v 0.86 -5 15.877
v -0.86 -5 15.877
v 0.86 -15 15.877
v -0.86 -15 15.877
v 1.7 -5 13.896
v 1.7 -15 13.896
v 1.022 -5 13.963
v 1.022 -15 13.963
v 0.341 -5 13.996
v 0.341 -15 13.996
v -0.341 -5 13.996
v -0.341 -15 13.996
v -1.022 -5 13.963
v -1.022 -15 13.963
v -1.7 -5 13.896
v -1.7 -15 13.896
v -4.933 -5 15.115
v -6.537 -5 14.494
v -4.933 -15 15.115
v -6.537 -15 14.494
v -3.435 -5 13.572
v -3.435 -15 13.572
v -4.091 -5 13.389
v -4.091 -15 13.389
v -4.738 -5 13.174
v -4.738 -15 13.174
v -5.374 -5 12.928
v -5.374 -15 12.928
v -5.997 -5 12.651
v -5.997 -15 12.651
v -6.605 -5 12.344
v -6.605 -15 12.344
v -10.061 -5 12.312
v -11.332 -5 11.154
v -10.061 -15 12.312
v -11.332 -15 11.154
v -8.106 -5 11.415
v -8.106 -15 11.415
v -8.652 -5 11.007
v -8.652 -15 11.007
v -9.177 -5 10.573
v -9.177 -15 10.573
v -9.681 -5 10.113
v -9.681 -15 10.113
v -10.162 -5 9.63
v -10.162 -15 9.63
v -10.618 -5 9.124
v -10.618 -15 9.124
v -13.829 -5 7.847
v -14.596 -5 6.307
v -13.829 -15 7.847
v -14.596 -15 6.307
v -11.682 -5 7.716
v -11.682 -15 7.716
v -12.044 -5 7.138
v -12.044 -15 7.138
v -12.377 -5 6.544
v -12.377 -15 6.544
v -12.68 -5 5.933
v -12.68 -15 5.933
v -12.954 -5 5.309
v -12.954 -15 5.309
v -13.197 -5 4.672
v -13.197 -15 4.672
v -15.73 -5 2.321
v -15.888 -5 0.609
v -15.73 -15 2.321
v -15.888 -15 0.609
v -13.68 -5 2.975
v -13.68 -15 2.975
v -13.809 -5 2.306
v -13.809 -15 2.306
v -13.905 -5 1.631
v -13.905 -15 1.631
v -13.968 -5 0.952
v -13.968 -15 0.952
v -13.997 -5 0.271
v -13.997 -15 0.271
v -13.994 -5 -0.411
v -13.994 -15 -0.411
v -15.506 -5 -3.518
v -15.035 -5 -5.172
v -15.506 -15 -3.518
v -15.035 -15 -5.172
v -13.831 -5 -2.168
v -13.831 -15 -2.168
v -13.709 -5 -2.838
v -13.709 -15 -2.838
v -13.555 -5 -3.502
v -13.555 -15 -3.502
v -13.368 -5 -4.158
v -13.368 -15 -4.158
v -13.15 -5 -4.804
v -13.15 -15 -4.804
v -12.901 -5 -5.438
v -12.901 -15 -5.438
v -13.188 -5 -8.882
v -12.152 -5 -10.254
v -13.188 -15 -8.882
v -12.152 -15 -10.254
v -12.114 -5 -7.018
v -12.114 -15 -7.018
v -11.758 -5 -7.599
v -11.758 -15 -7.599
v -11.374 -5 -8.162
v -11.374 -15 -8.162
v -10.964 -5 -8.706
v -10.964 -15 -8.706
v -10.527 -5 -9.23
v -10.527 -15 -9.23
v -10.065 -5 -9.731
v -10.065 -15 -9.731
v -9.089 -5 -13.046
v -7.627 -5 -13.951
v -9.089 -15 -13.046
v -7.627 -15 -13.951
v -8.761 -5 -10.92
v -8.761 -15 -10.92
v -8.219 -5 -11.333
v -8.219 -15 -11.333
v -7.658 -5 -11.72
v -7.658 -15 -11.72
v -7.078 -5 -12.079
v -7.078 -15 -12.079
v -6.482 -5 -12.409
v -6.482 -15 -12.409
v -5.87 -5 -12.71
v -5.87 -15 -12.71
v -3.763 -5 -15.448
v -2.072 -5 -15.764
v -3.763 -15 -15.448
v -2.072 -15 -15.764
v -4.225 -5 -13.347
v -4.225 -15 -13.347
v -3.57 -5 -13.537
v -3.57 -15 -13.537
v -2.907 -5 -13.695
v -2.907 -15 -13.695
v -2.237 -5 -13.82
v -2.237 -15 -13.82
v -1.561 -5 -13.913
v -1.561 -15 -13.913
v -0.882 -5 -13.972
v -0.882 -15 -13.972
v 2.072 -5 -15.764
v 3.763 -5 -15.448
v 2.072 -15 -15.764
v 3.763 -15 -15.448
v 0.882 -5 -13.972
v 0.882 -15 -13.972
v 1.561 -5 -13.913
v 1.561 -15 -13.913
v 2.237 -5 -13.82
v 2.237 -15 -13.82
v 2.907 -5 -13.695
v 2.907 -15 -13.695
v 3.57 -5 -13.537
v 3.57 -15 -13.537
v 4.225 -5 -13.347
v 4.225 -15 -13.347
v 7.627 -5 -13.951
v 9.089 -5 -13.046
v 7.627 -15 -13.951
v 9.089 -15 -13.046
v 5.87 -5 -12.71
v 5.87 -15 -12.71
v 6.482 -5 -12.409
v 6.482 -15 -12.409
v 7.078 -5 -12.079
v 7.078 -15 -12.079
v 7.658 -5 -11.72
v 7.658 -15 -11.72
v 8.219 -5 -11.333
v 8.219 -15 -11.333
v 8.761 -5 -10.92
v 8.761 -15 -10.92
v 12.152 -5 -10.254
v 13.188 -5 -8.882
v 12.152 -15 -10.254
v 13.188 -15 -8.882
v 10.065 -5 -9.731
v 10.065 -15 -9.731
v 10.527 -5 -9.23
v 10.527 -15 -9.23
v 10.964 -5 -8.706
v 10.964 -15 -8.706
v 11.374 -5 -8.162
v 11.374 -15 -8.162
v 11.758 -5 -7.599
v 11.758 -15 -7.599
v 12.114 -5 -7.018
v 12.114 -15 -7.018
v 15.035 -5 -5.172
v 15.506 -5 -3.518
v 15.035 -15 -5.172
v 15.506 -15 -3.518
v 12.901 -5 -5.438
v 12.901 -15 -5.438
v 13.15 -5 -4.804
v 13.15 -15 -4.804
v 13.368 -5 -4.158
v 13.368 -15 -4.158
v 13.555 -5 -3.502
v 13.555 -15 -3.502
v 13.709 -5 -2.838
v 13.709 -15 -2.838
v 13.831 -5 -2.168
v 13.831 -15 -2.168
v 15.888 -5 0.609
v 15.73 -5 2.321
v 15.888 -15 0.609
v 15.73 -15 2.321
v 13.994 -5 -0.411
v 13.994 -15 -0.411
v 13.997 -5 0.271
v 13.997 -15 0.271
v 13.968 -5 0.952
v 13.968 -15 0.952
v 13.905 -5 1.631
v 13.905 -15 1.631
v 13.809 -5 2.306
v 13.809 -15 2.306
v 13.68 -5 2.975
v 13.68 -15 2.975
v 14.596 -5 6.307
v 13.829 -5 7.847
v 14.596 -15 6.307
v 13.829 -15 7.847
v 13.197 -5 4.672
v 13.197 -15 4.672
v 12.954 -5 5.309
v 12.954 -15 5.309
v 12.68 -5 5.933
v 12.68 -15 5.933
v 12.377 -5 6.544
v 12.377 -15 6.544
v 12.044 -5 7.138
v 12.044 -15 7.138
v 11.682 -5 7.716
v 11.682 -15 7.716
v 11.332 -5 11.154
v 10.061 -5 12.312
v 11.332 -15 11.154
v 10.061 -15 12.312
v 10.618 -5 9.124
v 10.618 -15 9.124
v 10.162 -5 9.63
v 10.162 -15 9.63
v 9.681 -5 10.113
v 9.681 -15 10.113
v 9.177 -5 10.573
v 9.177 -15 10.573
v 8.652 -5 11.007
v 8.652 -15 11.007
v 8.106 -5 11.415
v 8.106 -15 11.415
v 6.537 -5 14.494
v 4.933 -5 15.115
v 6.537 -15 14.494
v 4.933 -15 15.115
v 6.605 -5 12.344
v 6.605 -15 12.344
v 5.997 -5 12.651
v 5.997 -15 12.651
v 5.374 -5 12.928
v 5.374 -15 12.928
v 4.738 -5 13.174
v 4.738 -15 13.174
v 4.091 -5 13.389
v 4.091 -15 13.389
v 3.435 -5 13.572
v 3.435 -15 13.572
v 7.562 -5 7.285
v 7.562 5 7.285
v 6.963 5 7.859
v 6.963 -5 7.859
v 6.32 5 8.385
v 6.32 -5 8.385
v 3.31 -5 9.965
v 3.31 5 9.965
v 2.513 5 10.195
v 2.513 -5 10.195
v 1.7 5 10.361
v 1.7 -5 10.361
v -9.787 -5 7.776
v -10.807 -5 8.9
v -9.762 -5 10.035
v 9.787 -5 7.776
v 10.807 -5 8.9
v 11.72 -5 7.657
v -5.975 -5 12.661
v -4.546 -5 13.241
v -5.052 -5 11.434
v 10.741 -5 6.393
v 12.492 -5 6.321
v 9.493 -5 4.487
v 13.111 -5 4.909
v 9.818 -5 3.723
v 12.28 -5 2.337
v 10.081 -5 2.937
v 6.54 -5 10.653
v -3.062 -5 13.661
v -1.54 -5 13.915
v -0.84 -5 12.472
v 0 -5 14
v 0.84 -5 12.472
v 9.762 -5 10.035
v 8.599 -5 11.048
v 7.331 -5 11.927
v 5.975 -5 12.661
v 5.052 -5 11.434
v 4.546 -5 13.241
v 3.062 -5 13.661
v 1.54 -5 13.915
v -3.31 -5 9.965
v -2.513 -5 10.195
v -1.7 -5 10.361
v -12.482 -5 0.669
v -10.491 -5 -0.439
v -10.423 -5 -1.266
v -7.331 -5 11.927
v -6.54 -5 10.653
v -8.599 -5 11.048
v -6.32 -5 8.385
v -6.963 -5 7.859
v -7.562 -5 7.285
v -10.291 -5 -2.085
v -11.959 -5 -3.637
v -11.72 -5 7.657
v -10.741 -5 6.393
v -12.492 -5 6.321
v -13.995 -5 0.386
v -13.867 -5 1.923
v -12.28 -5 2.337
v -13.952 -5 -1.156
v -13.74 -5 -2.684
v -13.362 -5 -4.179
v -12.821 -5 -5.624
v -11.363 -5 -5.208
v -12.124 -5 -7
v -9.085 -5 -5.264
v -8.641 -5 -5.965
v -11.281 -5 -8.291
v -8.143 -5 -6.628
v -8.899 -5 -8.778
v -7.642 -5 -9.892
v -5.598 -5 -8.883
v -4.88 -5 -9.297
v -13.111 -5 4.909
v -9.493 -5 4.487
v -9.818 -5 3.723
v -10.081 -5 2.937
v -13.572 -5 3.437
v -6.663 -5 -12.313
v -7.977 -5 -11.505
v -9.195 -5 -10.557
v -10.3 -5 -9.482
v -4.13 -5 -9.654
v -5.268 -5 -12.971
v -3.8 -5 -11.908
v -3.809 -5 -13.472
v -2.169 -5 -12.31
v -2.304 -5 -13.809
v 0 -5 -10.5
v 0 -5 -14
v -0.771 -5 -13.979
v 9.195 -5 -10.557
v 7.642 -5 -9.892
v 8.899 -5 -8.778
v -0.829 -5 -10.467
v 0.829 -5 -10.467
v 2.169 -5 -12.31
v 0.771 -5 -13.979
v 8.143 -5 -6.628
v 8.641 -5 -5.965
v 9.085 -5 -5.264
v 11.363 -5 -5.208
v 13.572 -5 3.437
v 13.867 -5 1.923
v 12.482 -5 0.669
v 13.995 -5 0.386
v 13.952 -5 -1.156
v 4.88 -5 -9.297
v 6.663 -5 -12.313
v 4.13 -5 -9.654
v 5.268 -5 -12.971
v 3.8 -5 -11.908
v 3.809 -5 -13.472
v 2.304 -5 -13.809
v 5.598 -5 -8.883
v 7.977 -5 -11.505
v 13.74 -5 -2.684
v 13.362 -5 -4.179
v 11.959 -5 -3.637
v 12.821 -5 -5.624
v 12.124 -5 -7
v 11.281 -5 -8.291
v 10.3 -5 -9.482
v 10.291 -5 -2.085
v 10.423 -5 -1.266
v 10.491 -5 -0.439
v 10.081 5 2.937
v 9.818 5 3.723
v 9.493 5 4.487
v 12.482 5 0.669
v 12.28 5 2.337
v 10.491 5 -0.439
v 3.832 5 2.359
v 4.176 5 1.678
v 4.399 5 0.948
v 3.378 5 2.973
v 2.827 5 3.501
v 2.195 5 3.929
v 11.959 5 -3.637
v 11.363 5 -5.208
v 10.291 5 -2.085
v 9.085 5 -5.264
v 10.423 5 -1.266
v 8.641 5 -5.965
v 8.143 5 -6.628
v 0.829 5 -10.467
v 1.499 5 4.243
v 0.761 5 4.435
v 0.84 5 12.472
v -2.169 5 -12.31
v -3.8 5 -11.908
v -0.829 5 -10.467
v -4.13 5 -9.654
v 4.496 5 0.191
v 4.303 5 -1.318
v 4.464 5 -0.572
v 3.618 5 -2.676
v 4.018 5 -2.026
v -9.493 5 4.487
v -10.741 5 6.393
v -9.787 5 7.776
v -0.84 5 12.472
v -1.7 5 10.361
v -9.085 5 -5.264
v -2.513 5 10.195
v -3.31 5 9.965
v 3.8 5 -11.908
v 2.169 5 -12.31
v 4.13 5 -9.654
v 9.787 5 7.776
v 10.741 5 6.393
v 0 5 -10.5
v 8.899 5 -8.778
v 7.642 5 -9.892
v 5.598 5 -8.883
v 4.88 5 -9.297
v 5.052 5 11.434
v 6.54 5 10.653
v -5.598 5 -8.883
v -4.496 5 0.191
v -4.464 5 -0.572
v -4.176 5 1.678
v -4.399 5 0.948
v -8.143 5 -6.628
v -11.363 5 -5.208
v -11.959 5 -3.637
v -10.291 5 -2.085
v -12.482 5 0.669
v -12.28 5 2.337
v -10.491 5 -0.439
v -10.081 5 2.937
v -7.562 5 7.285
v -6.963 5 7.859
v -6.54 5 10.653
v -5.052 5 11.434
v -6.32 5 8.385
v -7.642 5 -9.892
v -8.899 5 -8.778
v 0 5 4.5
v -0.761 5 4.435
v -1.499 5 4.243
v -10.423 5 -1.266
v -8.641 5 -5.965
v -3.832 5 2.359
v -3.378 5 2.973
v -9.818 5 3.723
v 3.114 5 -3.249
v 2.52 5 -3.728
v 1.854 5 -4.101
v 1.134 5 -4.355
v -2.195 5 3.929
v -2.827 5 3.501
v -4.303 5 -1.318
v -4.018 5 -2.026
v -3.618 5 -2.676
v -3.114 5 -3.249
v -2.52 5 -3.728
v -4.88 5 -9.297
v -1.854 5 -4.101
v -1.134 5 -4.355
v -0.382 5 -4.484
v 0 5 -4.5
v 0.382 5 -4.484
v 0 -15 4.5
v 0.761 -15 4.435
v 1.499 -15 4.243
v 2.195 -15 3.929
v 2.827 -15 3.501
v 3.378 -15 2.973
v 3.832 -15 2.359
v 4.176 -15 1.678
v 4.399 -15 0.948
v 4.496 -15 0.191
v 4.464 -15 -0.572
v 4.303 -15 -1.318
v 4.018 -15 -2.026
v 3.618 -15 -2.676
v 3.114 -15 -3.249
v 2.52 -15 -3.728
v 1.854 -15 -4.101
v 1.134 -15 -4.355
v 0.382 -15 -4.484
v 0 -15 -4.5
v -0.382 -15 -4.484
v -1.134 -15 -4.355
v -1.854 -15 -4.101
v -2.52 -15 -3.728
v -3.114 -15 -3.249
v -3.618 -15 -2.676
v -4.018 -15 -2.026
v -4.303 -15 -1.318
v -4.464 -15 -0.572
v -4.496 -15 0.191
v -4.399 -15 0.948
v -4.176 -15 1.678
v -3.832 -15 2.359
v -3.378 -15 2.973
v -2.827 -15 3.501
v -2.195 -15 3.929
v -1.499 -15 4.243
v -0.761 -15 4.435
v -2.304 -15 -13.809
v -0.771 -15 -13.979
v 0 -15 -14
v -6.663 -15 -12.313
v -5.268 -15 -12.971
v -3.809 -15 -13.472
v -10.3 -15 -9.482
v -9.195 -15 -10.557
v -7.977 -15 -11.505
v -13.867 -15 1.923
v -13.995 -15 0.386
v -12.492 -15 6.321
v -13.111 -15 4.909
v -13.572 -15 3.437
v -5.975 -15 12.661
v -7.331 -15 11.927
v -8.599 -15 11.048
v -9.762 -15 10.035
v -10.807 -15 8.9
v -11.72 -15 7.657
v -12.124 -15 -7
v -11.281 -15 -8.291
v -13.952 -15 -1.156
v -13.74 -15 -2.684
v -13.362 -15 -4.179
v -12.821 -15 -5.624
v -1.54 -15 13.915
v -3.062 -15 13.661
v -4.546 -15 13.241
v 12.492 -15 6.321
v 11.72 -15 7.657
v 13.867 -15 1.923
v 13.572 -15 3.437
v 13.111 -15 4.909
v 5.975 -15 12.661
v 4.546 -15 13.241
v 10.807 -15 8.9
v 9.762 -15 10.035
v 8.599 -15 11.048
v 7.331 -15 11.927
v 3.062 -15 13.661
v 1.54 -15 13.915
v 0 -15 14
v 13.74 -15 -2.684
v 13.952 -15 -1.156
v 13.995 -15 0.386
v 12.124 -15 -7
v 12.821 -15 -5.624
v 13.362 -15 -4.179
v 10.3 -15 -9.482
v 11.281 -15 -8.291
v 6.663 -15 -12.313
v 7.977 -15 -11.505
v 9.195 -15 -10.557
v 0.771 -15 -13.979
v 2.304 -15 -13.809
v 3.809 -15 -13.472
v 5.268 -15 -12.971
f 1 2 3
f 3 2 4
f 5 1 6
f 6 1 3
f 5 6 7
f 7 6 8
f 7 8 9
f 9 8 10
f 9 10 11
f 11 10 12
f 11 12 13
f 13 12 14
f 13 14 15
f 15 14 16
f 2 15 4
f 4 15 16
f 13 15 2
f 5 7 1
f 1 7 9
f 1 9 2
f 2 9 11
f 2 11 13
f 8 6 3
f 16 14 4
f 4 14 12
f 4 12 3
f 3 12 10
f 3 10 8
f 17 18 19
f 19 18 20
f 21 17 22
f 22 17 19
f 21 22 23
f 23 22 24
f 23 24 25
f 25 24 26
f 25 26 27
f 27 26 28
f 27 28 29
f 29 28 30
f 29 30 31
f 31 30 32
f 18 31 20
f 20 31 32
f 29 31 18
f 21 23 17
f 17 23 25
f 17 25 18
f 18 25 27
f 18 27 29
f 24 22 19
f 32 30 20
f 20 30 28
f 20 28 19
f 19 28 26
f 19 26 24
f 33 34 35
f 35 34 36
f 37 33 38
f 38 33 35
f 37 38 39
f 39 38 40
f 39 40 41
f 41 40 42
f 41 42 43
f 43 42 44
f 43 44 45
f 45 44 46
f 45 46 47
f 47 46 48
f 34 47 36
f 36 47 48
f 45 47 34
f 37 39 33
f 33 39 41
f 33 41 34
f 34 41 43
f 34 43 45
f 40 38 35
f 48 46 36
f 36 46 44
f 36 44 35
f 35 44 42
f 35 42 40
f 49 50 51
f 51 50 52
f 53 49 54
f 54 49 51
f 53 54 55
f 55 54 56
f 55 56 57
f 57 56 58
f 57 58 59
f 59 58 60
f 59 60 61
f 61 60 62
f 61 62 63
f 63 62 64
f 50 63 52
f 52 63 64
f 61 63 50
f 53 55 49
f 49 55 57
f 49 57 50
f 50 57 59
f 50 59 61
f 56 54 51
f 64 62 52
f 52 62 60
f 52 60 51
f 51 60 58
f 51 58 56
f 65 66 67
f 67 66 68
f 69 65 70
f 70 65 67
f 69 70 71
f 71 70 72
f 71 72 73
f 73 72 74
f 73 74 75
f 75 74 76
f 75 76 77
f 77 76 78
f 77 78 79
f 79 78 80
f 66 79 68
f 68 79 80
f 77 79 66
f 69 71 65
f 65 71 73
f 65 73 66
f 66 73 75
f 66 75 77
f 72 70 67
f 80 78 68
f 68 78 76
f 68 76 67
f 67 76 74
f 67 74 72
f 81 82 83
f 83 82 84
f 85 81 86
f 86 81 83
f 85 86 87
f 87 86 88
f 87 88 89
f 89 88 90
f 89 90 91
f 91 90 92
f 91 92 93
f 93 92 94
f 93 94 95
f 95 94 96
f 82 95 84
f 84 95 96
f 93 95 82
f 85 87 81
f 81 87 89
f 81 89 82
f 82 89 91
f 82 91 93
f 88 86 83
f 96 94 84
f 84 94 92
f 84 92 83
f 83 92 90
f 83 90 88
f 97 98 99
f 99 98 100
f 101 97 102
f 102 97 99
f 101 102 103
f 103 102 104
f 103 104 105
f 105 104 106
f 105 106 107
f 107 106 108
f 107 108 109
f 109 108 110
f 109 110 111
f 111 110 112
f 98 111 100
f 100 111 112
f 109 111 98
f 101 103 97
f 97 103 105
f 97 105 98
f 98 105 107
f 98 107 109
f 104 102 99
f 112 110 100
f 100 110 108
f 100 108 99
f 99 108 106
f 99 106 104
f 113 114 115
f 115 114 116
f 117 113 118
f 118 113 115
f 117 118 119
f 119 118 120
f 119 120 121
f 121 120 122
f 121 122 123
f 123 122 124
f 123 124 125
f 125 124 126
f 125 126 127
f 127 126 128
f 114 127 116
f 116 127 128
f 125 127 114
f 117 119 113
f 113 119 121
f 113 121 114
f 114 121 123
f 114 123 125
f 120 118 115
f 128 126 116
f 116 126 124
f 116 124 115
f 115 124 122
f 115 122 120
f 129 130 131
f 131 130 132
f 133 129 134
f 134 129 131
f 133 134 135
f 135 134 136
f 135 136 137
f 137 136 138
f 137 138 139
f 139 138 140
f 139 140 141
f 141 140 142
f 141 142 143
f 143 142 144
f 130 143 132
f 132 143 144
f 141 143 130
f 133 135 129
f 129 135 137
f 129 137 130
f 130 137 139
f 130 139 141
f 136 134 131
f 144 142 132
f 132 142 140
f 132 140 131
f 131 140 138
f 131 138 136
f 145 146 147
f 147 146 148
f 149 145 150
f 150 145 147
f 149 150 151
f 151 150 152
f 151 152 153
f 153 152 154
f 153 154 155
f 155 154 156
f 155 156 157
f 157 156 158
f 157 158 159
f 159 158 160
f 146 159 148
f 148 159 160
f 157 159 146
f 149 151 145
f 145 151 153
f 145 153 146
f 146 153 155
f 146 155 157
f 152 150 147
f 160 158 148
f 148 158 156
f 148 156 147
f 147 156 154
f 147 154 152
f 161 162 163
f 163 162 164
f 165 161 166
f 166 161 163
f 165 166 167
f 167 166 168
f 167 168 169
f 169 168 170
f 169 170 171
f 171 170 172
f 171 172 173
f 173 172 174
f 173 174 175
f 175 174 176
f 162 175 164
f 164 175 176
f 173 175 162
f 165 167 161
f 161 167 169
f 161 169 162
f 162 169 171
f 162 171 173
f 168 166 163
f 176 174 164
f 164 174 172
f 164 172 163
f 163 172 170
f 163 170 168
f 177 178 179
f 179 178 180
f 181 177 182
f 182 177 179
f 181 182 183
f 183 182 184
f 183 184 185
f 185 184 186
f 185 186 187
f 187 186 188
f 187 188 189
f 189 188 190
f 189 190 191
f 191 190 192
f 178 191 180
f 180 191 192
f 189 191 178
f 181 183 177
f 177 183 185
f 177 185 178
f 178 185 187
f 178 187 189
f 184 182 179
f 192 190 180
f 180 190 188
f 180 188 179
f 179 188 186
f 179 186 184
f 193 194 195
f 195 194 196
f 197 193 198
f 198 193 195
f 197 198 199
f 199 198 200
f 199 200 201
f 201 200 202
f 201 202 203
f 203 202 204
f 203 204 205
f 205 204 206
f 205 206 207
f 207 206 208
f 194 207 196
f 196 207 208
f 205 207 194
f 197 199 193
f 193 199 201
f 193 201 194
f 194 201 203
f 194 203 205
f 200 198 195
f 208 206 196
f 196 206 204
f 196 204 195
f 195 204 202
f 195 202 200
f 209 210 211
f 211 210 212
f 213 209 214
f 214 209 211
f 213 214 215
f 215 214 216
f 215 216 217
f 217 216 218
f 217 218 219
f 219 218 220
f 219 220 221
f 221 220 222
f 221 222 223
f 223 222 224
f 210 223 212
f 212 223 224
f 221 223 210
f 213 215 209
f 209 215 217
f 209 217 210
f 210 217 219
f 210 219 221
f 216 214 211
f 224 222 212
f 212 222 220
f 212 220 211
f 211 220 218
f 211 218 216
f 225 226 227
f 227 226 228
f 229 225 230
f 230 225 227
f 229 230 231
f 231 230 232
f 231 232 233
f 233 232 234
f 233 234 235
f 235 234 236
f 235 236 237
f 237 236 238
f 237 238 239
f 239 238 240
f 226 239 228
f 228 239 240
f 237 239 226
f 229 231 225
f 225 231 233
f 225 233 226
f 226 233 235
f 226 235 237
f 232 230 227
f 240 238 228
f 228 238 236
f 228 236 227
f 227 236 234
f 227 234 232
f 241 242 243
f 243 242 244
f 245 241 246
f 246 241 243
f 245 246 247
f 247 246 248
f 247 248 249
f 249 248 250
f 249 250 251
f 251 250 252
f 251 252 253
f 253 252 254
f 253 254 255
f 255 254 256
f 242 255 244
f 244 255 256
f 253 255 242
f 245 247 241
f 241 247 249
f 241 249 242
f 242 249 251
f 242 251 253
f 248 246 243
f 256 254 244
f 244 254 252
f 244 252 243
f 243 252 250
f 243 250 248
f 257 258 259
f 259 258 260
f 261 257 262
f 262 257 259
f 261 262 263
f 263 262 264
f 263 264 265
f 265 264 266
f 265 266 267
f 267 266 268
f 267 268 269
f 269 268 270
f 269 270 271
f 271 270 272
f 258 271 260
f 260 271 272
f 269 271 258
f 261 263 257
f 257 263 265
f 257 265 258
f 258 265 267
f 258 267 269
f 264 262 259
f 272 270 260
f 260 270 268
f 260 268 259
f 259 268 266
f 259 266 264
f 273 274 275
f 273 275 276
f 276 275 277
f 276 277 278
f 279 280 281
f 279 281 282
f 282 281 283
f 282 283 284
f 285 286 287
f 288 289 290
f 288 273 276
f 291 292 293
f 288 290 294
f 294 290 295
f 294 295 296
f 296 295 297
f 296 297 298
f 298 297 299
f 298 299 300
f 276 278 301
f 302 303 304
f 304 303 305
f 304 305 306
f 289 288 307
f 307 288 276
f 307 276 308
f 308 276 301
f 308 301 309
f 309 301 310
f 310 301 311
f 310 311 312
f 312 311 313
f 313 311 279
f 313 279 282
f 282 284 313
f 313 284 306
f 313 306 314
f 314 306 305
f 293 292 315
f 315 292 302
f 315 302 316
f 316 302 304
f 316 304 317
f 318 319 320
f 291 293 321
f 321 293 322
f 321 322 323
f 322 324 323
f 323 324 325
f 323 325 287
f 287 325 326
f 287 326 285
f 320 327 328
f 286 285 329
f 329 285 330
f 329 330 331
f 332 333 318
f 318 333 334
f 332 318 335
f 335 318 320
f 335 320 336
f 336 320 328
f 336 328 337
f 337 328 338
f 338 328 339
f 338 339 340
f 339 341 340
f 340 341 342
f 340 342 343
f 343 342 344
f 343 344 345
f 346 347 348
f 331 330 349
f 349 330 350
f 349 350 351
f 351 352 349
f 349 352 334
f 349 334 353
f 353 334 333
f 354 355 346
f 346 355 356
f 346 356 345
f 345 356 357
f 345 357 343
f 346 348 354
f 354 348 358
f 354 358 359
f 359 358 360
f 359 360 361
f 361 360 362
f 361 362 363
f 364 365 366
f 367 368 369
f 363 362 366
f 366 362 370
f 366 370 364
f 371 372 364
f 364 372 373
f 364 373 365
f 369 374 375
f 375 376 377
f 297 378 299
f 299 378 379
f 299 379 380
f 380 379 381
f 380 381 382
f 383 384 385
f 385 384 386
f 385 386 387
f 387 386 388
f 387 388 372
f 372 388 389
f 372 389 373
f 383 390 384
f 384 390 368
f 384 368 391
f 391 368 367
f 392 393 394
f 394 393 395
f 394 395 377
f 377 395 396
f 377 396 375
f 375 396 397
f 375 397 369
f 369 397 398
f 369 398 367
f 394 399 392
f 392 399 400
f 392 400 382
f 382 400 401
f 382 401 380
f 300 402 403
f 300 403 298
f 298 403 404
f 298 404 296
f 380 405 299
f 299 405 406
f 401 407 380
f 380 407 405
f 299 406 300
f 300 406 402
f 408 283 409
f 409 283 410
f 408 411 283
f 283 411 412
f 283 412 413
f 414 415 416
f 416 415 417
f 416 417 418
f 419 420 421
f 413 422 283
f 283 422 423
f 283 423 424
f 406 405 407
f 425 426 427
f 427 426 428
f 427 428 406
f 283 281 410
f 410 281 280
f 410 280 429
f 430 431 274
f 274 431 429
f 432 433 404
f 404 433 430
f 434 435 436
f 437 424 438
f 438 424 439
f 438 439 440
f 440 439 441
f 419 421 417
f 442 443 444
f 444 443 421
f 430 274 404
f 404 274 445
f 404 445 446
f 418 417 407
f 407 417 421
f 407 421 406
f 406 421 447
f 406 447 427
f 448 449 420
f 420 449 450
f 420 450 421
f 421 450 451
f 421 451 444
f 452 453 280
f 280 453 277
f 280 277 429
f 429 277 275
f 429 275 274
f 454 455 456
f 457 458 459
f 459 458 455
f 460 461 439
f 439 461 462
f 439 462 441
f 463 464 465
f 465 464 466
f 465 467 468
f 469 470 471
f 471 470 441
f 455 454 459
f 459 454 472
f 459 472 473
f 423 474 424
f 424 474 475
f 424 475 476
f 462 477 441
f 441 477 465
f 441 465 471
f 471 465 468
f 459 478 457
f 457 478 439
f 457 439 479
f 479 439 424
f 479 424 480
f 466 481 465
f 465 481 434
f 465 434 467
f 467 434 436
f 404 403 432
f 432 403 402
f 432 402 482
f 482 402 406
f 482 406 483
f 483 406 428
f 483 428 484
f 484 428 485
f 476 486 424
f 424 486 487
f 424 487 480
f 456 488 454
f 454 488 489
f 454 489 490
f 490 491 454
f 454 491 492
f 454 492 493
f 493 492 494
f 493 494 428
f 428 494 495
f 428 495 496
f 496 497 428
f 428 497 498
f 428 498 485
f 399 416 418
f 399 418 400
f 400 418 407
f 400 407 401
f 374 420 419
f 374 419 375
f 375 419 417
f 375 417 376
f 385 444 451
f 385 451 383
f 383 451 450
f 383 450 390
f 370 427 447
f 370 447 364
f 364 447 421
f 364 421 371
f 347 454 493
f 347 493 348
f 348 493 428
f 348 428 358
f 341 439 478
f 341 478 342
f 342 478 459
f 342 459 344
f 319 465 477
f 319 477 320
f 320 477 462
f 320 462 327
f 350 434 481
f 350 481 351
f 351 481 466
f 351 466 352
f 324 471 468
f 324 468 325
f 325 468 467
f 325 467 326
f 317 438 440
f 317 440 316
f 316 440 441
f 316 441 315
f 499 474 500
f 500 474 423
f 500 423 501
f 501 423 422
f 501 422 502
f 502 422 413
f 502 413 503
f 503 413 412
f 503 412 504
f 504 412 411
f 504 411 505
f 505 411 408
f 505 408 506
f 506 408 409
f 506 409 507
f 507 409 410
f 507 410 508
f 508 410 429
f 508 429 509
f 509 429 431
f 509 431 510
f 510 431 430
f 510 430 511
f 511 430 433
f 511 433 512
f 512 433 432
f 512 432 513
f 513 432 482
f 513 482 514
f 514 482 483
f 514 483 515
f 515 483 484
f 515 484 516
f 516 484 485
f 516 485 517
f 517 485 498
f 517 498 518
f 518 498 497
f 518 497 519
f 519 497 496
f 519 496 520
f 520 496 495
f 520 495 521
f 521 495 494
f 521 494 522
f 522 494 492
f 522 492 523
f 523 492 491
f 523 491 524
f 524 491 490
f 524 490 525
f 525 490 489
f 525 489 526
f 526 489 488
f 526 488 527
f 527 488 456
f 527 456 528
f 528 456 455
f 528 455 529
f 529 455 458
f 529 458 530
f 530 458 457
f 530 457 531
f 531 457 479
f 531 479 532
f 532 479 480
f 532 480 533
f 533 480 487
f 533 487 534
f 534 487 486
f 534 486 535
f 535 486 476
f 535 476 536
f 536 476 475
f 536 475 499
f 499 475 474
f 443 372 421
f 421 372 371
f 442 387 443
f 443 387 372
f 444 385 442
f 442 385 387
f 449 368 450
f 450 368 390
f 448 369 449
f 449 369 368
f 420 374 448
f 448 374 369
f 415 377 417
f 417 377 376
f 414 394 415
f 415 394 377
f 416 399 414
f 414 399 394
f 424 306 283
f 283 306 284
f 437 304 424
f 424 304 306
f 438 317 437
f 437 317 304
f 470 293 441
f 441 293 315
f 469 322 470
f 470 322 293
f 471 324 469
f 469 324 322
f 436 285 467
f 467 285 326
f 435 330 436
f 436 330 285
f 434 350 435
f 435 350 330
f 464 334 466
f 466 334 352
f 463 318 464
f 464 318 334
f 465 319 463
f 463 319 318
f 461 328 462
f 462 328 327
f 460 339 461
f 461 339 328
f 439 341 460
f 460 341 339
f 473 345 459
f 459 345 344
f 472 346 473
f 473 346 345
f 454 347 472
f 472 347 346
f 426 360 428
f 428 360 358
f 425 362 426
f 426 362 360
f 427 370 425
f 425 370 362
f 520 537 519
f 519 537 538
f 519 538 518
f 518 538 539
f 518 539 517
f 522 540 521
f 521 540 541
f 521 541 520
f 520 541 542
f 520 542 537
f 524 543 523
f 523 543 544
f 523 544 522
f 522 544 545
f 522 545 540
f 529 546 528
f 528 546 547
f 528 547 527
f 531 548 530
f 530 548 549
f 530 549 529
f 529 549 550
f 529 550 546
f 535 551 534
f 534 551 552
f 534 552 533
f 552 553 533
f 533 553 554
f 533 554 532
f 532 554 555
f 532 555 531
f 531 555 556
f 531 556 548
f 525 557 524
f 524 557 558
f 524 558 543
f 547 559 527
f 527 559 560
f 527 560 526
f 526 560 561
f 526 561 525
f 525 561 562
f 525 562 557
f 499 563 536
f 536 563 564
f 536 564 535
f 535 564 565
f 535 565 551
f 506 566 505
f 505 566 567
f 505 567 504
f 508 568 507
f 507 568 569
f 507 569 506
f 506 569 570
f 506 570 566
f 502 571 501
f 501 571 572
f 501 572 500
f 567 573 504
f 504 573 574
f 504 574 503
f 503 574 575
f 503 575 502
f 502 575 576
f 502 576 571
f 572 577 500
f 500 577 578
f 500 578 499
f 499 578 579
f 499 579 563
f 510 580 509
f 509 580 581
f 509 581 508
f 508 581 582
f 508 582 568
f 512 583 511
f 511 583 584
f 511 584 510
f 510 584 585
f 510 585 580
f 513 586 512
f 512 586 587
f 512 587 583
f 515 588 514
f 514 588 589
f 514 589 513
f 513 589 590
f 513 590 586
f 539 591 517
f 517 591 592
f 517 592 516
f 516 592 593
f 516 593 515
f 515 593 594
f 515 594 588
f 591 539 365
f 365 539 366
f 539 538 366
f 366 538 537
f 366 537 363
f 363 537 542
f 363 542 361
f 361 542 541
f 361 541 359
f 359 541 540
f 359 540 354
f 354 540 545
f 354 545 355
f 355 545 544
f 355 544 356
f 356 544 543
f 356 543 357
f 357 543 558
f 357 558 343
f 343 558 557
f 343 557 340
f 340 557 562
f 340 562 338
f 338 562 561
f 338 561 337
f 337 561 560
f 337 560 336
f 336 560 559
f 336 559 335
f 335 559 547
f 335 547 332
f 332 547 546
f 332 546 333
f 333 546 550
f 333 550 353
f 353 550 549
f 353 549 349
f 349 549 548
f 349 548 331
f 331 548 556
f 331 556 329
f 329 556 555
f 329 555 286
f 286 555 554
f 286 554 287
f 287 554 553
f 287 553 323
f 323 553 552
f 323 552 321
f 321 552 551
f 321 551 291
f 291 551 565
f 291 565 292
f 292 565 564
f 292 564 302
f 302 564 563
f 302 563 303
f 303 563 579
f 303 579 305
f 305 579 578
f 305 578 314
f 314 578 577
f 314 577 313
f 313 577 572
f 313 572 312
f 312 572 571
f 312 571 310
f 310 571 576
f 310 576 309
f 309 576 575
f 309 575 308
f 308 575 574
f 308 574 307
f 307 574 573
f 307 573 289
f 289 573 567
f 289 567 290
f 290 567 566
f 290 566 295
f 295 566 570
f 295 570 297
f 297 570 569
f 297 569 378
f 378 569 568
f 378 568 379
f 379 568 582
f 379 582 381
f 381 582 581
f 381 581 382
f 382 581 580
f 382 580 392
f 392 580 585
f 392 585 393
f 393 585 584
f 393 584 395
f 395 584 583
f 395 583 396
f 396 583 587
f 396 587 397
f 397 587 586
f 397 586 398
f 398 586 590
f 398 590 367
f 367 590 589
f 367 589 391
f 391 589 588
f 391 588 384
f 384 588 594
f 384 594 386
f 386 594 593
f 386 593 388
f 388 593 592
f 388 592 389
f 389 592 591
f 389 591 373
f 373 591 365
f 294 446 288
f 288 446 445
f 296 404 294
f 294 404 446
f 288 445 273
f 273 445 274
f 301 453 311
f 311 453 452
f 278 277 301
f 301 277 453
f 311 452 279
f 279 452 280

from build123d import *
from build123d.topology import SkipClean

# Parameters (mm, degrees)
SKETCH1_R            = 4.5
BOSS_EXTRUDE1_DEPTH  = 5
SKETCH12_R           = 10.5
SKETCH12_R_2         = 4.5
BOSS_EXTRUDE6_DEPTH  = 5
BOSS_EXTRUDE9_DEPTH  = 5
CIRPATTERN2_COUNT    = 13
BOSS_EXTRUDE10_START = 5
SKETCH17_R           = 10.5
SKETCH17_R_2         = 4.5
BOSS_EXTRUDE10_DEPTH = 5
BOSS_EXTRUDE11_START = 10
SKETCH20_R           = 14
SKETCH20_R_2         = 4.5
BOSS_EXTRUDE11_DEPTH = 10
BOSS_EXTRUDE12_DEPTH = 10
CIRPATTERN3_COUNT    = 17
BOSS_EXTRUDE13_DEPTH = 5
SKETCH27_R           = 4.5
CUT_EXTRUDE3_DEPTH   = 10


with BuildPart() as part:
    # Sketch1 → Boss-Extrude1 (new body)
    with BuildSketch(Plane(origin=(0, 0, 0), x_dir=(1, 0, 0), z_dir=(0, 1, 0))):
        with Locations(Location((0, 0, 0), (0, 0, 270))):
            Circle(SKETCH1_R)
    extrude(amount=BOSS_EXTRUDE1_DEPTH)

    # Sketch27 → Cut-Extrude3 (cut)
    with BuildSketch(Plane.XZ):
        with Locations(Location((0, 0, 0), (0, 0, 270))):
            Circle(SKETCH27_R)
    extrude(amount=-CUT_EXTRUDE3_DEPTH, mode=Mode.SUBTRACT)


with BuildPart() as body_2:
    # Sketch12 → Boss-Extrude6 (new body)
    with BuildSketch(Plane(origin=(0, 5, 0), x_dir=(-1, 0, 0), z_dir=(0, -1, 0))):
        with Locations(Location((0, 0, 0), (0, 0, 90))):
            Circle(SKETCH12_R)
        with Locations(Location((0, 0, 0), (0, 0, 270))):
            Circle(SKETCH12_R_2, mode=Mode.SUBTRACT)
    extrude(amount=BOSS_EXTRUDE6_DEPTH)



with BuildPart() as body_3:
    # Sketch13 → Boss-Extrude9 (new body)
    with BuildSketch(Plane.XZ):
        with BuildLine():
            Line((1.7, 10.361467078), (0.84, 12.471744064))
            Line((0.84, 12.471744064), (-0.84, 12.471744064))
            Line((-0.84, 12.471744064), (-1.7, 10.361467078))
            ThreePointArc((-1.7, 10.361467078), (0, 10.5), (1.7, 10.361467078))
        make_face()
    extrude(amount=-BOSS_EXTRUDE9_DEPTH)


with BuildPart() as cirpattern2_1:
    # CirPattern2: pattern copy
    add(body_3.part.rotate(Axis((0, 0, 0), (0, 1, 0)), 1 * 360 / CIRPATTERN2_COUNT))


with BuildPart() as cirpattern2_2:
    # CirPattern2: pattern copy
    add(body_3.part.rotate(Axis((0, 0, 0), (0, 1, 0)), 2 * 360 / CIRPATTERN2_COUNT))


with BuildPart() as cirpattern2_3:
    # CirPattern2: pattern copy
    add(body_3.part.rotate(Axis((0, 0, 0), (0, 1, 0)), 3 * 360 / CIRPATTERN2_COUNT))


with BuildPart() as cirpattern2_4:
    # CirPattern2: pattern copy
    add(body_3.part.rotate(Axis((0, 0, 0), (0, 1, 0)), 4 * 360 / CIRPATTERN2_COUNT))


with BuildPart() as cirpattern2_5:
    # CirPattern2: pattern copy
    add(body_3.part.rotate(Axis((0, 0, 0), (0, 1, 0)), 5 * 360 / CIRPATTERN2_COUNT))


with BuildPart() as cirpattern2_6:
    # CirPattern2: pattern copy
    add(body_3.part.rotate(Axis((0, 0, 0), (0, 1, 0)), 6 * 360 / CIRPATTERN2_COUNT))


with BuildPart() as cirpattern2_7:
    # CirPattern2: pattern copy
    add(body_3.part.rotate(Axis((0, 0, 0), (0, 1, 0)), 7 * 360 / CIRPATTERN2_COUNT))


with BuildPart() as cirpattern2_8:
    # CirPattern2: pattern copy
    add(body_3.part.rotate(Axis((0, 0, 0), (0, 1, 0)), 8 * 360 / CIRPATTERN2_COUNT))


with BuildPart() as cirpattern2_9:
    # CirPattern2: pattern copy
    add(body_3.part.rotate(Axis((0, 0, 0), (0, 1, 0)), 9 * 360 / CIRPATTERN2_COUNT))


with BuildPart() as cirpattern2_10:
    # CirPattern2: pattern copy
    add(body_3.part.rotate(Axis((0, 0, 0), (0, 1, 0)), 10 * 360 / CIRPATTERN2_COUNT))


with BuildPart() as cirpattern2_11:
    # CirPattern2: pattern copy
    add(body_3.part.rotate(Axis((0, 0, 0), (0, 1, 0)), 11 * 360 / CIRPATTERN2_COUNT))


with BuildPart() as cirpattern2_12:
    # CirPattern2: pattern copy
    add(body_3.part.rotate(Axis((0, 0, 0), (0, 1, 0)), 12 * 360 / CIRPATTERN2_COUNT))


with BuildPart() as body_2_1:
    with SkipClean():  # the faces are left unmerged after this step: merging them gives an invalid solid
        add(body_2.part)

        add(body_3.part)  # Boss-Extrude10 merges body 3

        add(cirpattern2_4.part)  # Boss-Extrude10 merges CirPattern2_4

        add(cirpattern2_5.part)  # Boss-Extrude10 merges CirPattern2_5

        add(cirpattern2_6.part)  # Boss-Extrude10 merges CirPattern2_6

        add(cirpattern2_7.part)  # Boss-Extrude10 merges CirPattern2_7

        add(cirpattern2_8.part)  # Boss-Extrude10 merges CirPattern2_8

        add(cirpattern2_9.part)  # Boss-Extrude10 merges CirPattern2_9

        add(cirpattern2_10.part)  # Boss-Extrude10 merges CirPattern2_10

        add(cirpattern2_11.part)  # Boss-Extrude10 merges CirPattern2_11

        add(cirpattern2_12.part)  # Boss-Extrude10 merges CirPattern2_12
        # Sketch17 → Boss-Extrude10 (add)
        # profile 1 of 11: a face of its own
        with BuildSketch(Plane.XZ.offset(BOSS_EXTRUDE10_START)):
            Circle(SKETCH17_R)
            with Locations(Location((0, 0, 0), (0, 0, 90))):
                Circle(SKETCH17_R_2, mode=Mode.SUBTRACT)
        # profile 2 of 11: a face of its own
        with BuildSketch(Plane.XZ.offset(BOSS_EXTRUDE10_START)):
            with BuildLine():
                ThreePointArc((-1.7, 10.361467078), (0, 10.5), (1.7, 10.361467078))
                Line((1.7, 10.361467078), (0.84, 12.471744064))
                Line((0.84, 12.471744064), (-0.84, 12.471744064))
                Line((-0.84, 12.471744064), (-1.7, 10.361467078))
            make_face()
        # profile 3 of 11: a face of its own
        with BuildSketch(Plane.XZ.offset(BOSS_EXTRUDE10_START)):
            with BuildLine():
                ThreePointArc((-6.320489091, 8.384594066), (-4.879593306, 9.297288269), (-3.309938604, 9.964652851))
                Line((-3.309938604, 9.964652851), (-5.052125401, 11.433548396))
                Line((-5.052125401, 11.433548396), (-6.539691524, 10.652813467))
                Line((-6.539691524, 10.652813467), (-6.320489091, 8.384594066))
            make_face()
        # profile 4 of 11: a face of its own
        with BuildSketch(Plane.XZ.offset(BOSS_EXTRUDE10_START)):
            with BuildLine():
                Line((-10.741218532, 6.393451686), (-9.493030301, 4.486911599))
                ThreePointArc((-9.493030301, 4.486911599), (-8.641330592, 5.964679841), (-7.561610162, 7.285056743))
                Line((-7.561610162, 7.285056743), (-9.786869757, 7.77606458))
                Line((-9.786869757, 7.77606458), (-10.741218532, 6.393451686))
            make_face()
        # profile 5 of 11: a face of its own
        with BuildSketch(Plane.XZ.offset(BOSS_EXTRUDE10_START)):
            with BuildLine():
                Line((-12.482061819, 0.669427172), (-10.490832673, -0.438668242))
                ThreePointArc((-10.490832673, -0.438668242), (-10.423443178, 1.265635143), (-10.08100796, 2.93654193))
                Line((-10.08100796, 2.93654193), (-12.279560196, 2.337178081))
                Line((-12.279560196, 2.337178081), (-12.482061819, 0.669427172))
            make_face()
        # profile 6 of 11: a face of its own
        with BuildSketch(Plane.XZ.offset(BOSS_EXTRUDE10_START)):
            with BuildLine():
                Line((-11.363415169, -5.207955039), (-9.085311708, -5.263754475))
                ThreePointArc((-9.085311708, -5.263754475), (-9.817670548, -3.723351314), (-10.290968324, -2.08469925))
                Line((-10.290968324, -2.08469925), (-11.95915138, -3.637127751))
                Line((-11.95915138, -3.637127751), (-11.363415169, -5.207955039))
            make_face()
        # profile 7 of 11: a face of its own
        with BuildSketch(Plane.XZ.offset(BOSS_EXTRUDE10_START)):
            with BuildLine():
                Line((-7.641547048, -9.892257513), (-5.59845532, -8.882977993))
                ThreePointArc((-5.59845532, -8.882977993), (-6.962787912, -7.859362856), (-8.143391864, -6.628360955))
                Line((-8.143391864, -6.628360955), (-8.899045105, -8.778211447))
                Line((-8.899045105, -8.778211447), (-7.641547048, -9.892257513))
            make_face()
        # profile 8 of 11: a face of its own
        with BuildSketch(Plane.XZ.offset(BOSS_EXTRUDE10_START)):
            with BuildLine():
                Line((-2.169092589, -12.310363006), (-0.829060287, -10.467218305))
                ThreePointArc((-0.829060287, -10.467218305), (-2.512814475, -10.194889083), (-4.130262466, -9.653545046))
                Line((-4.130262466, -9.653545046), (-3.800274842, -11.90831269))
                Line((-3.800274842, -11.90831269), (-2.169092589, -12.310363006))
            make_face()
        # profile 9 of 11: a face of its own
        with BuildSketch(Plane.XZ.offset(BOSS_EXTRUDE10_START)):
            with BuildLine():
                Line((0.829060287, -10.467218305), (2.169092589, -12.310363006))
                Line((2.169092589, -12.310363006), (3.800274842, -11.90831269))
                Line((3.800274842, -11.90831269), (4.130262466, -9.653545046))
                ThreePointArc((4.130262466, -9.653545046), (2.512814475, -10.194889083), (0.829060287, -10.467218305))
            make_face()
        # profile 10 of 11: a face of its own
        with BuildSketch(Plane.XZ.offset(BOSS_EXTRUDE10_START)):
            with BuildLine():
                ThreePointArc((8.143391864, -6.628360955), (6.962787912, -7.859362856), (5.59845532, -8.882977993))
                Line((5.59845532, -8.882977993), (7.641547048, -9.892257513))
                Line((7.641547048, -9.892257513), (8.899045105, -8.778211447))
                Line((8.899045105, -8.778211447), (8.143391864, -6.628360955))
            make_face()
        # profile 11 of 11: a face of its own
        with BuildSketch(Plane.XZ.offset(BOSS_EXTRUDE10_START)):
            with BuildLine():
                ThreePointArc((10.290968324, -2.08469925), (9.817670548, -3.723351314), (9.085311708, -5.263754475))
                Line((9.085311708, -5.263754475), (11.363415169, -5.207955039))
                Line((11.363415169, -5.207955039), (11.95915138, -3.637127751))
                Line((11.95915138, -3.637127751), (10.290968324, -2.08469925))
            make_face()
        extrude(amount=-BOSS_EXTRUDE10_DEPTH)

    # Sketch20 → Boss-Extrude11 (add)
    with SkipClean():  # the faces are left unmerged after this step: merging them gives an invalid solid
        with BuildSketch(Plane.XZ.offset(5).offset(BOSS_EXTRUDE11_START)):
            with Locations(Location((0, 0, 0), (0, 0, 270))):
                Circle(SKETCH20_R)
            with Locations(Location((0, 0, 0), (0, 0, 90))):
                Circle(SKETCH20_R_2, mode=Mode.SUBTRACT)
        extrude(amount=-BOSS_EXTRUDE11_DEPTH)
    add(body_2_1.part.scale(1), mode=Mode.REPLACE)  # the faces are merged on a copy


    add(cirpattern2_1.part)  # Boss-Extrude13 merges CirPattern2_1

    add(cirpattern2_2.part)  # Boss-Extrude13 merges CirPattern2_2

    add(cirpattern2_3.part)  # Boss-Extrude13 merges CirPattern2_3
    # Sketch25 → Boss-Extrude13 (add)
    with BuildSketch(Plane.XZ):
        with BuildLine():
            Line((6.320489091, 8.384594066), (6.539691524, 10.652813467))
            Line((6.539691524, 10.652813467), (5.052125401, 11.433548396))
            Line((5.052125401, 11.433548396), (3.309938604, 9.964652851))
            ThreePointArc((3.309938604, 9.964652851), (4.879593306, 9.297288269), (6.320489091, 8.384594066))
        make_face()
        with BuildLine():
            Line((9.493030301, 4.486911599), (10.741218532, 6.393451686))
            Line((10.741218532, 6.393451686), (9.786869757, 7.77606458))
            Line((9.786869757, 7.77606458), (7.561610162, 7.285056743))
            ThreePointArc((7.561610162, 7.285056743), (8.641330592, 5.964679841), (9.493030301, 4.486911599))
        make_face()
        with BuildLine():
            Line((10.490832673, -0.438668242), (12.482061819, 0.669427172))
            Line((12.482061819, 0.669427172), (12.279560196, 2.337178081))
            Line((12.279560196, 2.337178081), (10.08100796, 2.93654193))
            ThreePointArc((10.08100796, 2.93654193), (10.423443178, 1.265635143), (10.490832673, -0.438668242))
        make_face()
    extrude(amount=BOSS_EXTRUDE13_DEPTH)


with BuildPart() as body_6:
    # Sketch21 → Boss-Extrude12 (new body)
    with BuildSketch(Plane.XZ.offset(15)):
        with BuildLine():
            Line((1.7, 13.896402412), (0.86, 15.876725103))
            Line((0.86, 15.876725103), (-0.86, 15.876725103))
            Line((-0.86, 15.876725103), (-1.7, 13.896402412))
            ThreePointArc((-1.7, 13.896402412), (0, 14), (1.7, 13.896402412))
        make_face()
    extrude(amount=-BOSS_EXTRUDE12_DEPTH)


with BuildPart() as cirpattern3_1:
    # CirPattern3: pattern copy
    add(body_6.part.rotate(Axis((0, 0, 0), (0, 1, 0)), 1 * 360 / CIRPATTERN3_COUNT))


with BuildPart() as cirpattern3_2:
    # CirPattern3: pattern copy
    add(body_6.part.rotate(Axis((0, 0, 0), (0, 1, 0)), 2 * 360 / CIRPATTERN3_COUNT))


with BuildPart() as cirpattern3_3:
    # CirPattern3: pattern copy
    add(body_6.part.rotate(Axis((0, 0, 0), (0, 1, 0)), 3 * 360 / CIRPATTERN3_COUNT))


with BuildPart() as cirpattern3_4:
    # CirPattern3: pattern copy
    add(body_6.part.rotate(Axis((0, 0, 0), (0, 1, 0)), 4 * 360 / CIRPATTERN3_COUNT))


with BuildPart() as cirpattern3_5:
    # CirPattern3: pattern copy
    add(body_6.part.rotate(Axis((0, 0, 0), (0, 1, 0)), 5 * 360 / CIRPATTERN3_COUNT))


with BuildPart() as cirpattern3_6:
    # CirPattern3: pattern copy
    add(body_6.part.rotate(Axis((0, 0, 0), (0, 1, 0)), 6 * 360 / CIRPATTERN3_COUNT))


with BuildPart() as cirpattern3_7:
    # CirPattern3: pattern copy
    add(body_6.part.rotate(Axis((0, 0, 0), (0, 1, 0)), 7 * 360 / CIRPATTERN3_COUNT))


with BuildPart() as cirpattern3_8:
    # CirPattern3: pattern copy
    add(body_6.part.rotate(Axis((0, 0, 0), (0, 1, 0)), 8 * 360 / CIRPATTERN3_COUNT))


with BuildPart() as cirpattern3_9:
    # CirPattern3: pattern copy
    add(body_6.part.rotate(Axis((0, 0, 0), (0, 1, 0)), 9 * 360 / CIRPATTERN3_COUNT))


with BuildPart() as cirpattern3_10:
    # CirPattern3: pattern copy
    add(body_6.part.rotate(Axis((0, 0, 0), (0, 1, 0)), 10 * 360 / CIRPATTERN3_COUNT))


with BuildPart() as cirpattern3_11:
    # CirPattern3: pattern copy
    add(body_6.part.rotate(Axis((0, 0, 0), (0, 1, 0)), 11 * 360 / CIRPATTERN3_COUNT))


with BuildPart() as cirpattern3_12:
    # CirPattern3: pattern copy
    add(body_6.part.rotate(Axis((0, 0, 0), (0, 1, 0)), 12 * 360 / CIRPATTERN3_COUNT))


with BuildPart() as cirpattern3_13:
    # CirPattern3: pattern copy
    add(body_6.part.rotate(Axis((0, 0, 0), (0, 1, 0)), 13 * 360 / CIRPATTERN3_COUNT))


with BuildPart() as cirpattern3_14:
    # CirPattern3: pattern copy
    add(body_6.part.rotate(Axis((0, 0, 0), (0, 1, 0)), 14 * 360 / CIRPATTERN3_COUNT))


with BuildPart() as cirpattern3_15:
    # CirPattern3: pattern copy
    add(body_6.part.rotate(Axis((0, 0, 0), (0, 1, 0)), 15 * 360 / CIRPATTERN3_COUNT))


with BuildPart() as cirpattern3_16:
    # CirPattern3: pattern copy
    add(body_6.part.rotate(Axis((0, 0, 0), (0, 1, 0)), 16 * 360 / CIRPATTERN3_COUNT))


solid = Compound([body_2_1.part, body_6.part, cirpattern3_1.part, cirpattern3_2.part, cirpattern3_3.part, cirpattern3_4.part, cirpattern3_5.part, cirpattern3_6.part, cirpattern3_7.part, cirpattern3_8.part, cirpattern3_9.part, cirpattern3_10.part, cirpattern3_11.part, cirpattern3_12.part, cirpattern3_13.part, cirpattern3_14.part, cirpattern3_15.part, cirpattern3_16.part])
